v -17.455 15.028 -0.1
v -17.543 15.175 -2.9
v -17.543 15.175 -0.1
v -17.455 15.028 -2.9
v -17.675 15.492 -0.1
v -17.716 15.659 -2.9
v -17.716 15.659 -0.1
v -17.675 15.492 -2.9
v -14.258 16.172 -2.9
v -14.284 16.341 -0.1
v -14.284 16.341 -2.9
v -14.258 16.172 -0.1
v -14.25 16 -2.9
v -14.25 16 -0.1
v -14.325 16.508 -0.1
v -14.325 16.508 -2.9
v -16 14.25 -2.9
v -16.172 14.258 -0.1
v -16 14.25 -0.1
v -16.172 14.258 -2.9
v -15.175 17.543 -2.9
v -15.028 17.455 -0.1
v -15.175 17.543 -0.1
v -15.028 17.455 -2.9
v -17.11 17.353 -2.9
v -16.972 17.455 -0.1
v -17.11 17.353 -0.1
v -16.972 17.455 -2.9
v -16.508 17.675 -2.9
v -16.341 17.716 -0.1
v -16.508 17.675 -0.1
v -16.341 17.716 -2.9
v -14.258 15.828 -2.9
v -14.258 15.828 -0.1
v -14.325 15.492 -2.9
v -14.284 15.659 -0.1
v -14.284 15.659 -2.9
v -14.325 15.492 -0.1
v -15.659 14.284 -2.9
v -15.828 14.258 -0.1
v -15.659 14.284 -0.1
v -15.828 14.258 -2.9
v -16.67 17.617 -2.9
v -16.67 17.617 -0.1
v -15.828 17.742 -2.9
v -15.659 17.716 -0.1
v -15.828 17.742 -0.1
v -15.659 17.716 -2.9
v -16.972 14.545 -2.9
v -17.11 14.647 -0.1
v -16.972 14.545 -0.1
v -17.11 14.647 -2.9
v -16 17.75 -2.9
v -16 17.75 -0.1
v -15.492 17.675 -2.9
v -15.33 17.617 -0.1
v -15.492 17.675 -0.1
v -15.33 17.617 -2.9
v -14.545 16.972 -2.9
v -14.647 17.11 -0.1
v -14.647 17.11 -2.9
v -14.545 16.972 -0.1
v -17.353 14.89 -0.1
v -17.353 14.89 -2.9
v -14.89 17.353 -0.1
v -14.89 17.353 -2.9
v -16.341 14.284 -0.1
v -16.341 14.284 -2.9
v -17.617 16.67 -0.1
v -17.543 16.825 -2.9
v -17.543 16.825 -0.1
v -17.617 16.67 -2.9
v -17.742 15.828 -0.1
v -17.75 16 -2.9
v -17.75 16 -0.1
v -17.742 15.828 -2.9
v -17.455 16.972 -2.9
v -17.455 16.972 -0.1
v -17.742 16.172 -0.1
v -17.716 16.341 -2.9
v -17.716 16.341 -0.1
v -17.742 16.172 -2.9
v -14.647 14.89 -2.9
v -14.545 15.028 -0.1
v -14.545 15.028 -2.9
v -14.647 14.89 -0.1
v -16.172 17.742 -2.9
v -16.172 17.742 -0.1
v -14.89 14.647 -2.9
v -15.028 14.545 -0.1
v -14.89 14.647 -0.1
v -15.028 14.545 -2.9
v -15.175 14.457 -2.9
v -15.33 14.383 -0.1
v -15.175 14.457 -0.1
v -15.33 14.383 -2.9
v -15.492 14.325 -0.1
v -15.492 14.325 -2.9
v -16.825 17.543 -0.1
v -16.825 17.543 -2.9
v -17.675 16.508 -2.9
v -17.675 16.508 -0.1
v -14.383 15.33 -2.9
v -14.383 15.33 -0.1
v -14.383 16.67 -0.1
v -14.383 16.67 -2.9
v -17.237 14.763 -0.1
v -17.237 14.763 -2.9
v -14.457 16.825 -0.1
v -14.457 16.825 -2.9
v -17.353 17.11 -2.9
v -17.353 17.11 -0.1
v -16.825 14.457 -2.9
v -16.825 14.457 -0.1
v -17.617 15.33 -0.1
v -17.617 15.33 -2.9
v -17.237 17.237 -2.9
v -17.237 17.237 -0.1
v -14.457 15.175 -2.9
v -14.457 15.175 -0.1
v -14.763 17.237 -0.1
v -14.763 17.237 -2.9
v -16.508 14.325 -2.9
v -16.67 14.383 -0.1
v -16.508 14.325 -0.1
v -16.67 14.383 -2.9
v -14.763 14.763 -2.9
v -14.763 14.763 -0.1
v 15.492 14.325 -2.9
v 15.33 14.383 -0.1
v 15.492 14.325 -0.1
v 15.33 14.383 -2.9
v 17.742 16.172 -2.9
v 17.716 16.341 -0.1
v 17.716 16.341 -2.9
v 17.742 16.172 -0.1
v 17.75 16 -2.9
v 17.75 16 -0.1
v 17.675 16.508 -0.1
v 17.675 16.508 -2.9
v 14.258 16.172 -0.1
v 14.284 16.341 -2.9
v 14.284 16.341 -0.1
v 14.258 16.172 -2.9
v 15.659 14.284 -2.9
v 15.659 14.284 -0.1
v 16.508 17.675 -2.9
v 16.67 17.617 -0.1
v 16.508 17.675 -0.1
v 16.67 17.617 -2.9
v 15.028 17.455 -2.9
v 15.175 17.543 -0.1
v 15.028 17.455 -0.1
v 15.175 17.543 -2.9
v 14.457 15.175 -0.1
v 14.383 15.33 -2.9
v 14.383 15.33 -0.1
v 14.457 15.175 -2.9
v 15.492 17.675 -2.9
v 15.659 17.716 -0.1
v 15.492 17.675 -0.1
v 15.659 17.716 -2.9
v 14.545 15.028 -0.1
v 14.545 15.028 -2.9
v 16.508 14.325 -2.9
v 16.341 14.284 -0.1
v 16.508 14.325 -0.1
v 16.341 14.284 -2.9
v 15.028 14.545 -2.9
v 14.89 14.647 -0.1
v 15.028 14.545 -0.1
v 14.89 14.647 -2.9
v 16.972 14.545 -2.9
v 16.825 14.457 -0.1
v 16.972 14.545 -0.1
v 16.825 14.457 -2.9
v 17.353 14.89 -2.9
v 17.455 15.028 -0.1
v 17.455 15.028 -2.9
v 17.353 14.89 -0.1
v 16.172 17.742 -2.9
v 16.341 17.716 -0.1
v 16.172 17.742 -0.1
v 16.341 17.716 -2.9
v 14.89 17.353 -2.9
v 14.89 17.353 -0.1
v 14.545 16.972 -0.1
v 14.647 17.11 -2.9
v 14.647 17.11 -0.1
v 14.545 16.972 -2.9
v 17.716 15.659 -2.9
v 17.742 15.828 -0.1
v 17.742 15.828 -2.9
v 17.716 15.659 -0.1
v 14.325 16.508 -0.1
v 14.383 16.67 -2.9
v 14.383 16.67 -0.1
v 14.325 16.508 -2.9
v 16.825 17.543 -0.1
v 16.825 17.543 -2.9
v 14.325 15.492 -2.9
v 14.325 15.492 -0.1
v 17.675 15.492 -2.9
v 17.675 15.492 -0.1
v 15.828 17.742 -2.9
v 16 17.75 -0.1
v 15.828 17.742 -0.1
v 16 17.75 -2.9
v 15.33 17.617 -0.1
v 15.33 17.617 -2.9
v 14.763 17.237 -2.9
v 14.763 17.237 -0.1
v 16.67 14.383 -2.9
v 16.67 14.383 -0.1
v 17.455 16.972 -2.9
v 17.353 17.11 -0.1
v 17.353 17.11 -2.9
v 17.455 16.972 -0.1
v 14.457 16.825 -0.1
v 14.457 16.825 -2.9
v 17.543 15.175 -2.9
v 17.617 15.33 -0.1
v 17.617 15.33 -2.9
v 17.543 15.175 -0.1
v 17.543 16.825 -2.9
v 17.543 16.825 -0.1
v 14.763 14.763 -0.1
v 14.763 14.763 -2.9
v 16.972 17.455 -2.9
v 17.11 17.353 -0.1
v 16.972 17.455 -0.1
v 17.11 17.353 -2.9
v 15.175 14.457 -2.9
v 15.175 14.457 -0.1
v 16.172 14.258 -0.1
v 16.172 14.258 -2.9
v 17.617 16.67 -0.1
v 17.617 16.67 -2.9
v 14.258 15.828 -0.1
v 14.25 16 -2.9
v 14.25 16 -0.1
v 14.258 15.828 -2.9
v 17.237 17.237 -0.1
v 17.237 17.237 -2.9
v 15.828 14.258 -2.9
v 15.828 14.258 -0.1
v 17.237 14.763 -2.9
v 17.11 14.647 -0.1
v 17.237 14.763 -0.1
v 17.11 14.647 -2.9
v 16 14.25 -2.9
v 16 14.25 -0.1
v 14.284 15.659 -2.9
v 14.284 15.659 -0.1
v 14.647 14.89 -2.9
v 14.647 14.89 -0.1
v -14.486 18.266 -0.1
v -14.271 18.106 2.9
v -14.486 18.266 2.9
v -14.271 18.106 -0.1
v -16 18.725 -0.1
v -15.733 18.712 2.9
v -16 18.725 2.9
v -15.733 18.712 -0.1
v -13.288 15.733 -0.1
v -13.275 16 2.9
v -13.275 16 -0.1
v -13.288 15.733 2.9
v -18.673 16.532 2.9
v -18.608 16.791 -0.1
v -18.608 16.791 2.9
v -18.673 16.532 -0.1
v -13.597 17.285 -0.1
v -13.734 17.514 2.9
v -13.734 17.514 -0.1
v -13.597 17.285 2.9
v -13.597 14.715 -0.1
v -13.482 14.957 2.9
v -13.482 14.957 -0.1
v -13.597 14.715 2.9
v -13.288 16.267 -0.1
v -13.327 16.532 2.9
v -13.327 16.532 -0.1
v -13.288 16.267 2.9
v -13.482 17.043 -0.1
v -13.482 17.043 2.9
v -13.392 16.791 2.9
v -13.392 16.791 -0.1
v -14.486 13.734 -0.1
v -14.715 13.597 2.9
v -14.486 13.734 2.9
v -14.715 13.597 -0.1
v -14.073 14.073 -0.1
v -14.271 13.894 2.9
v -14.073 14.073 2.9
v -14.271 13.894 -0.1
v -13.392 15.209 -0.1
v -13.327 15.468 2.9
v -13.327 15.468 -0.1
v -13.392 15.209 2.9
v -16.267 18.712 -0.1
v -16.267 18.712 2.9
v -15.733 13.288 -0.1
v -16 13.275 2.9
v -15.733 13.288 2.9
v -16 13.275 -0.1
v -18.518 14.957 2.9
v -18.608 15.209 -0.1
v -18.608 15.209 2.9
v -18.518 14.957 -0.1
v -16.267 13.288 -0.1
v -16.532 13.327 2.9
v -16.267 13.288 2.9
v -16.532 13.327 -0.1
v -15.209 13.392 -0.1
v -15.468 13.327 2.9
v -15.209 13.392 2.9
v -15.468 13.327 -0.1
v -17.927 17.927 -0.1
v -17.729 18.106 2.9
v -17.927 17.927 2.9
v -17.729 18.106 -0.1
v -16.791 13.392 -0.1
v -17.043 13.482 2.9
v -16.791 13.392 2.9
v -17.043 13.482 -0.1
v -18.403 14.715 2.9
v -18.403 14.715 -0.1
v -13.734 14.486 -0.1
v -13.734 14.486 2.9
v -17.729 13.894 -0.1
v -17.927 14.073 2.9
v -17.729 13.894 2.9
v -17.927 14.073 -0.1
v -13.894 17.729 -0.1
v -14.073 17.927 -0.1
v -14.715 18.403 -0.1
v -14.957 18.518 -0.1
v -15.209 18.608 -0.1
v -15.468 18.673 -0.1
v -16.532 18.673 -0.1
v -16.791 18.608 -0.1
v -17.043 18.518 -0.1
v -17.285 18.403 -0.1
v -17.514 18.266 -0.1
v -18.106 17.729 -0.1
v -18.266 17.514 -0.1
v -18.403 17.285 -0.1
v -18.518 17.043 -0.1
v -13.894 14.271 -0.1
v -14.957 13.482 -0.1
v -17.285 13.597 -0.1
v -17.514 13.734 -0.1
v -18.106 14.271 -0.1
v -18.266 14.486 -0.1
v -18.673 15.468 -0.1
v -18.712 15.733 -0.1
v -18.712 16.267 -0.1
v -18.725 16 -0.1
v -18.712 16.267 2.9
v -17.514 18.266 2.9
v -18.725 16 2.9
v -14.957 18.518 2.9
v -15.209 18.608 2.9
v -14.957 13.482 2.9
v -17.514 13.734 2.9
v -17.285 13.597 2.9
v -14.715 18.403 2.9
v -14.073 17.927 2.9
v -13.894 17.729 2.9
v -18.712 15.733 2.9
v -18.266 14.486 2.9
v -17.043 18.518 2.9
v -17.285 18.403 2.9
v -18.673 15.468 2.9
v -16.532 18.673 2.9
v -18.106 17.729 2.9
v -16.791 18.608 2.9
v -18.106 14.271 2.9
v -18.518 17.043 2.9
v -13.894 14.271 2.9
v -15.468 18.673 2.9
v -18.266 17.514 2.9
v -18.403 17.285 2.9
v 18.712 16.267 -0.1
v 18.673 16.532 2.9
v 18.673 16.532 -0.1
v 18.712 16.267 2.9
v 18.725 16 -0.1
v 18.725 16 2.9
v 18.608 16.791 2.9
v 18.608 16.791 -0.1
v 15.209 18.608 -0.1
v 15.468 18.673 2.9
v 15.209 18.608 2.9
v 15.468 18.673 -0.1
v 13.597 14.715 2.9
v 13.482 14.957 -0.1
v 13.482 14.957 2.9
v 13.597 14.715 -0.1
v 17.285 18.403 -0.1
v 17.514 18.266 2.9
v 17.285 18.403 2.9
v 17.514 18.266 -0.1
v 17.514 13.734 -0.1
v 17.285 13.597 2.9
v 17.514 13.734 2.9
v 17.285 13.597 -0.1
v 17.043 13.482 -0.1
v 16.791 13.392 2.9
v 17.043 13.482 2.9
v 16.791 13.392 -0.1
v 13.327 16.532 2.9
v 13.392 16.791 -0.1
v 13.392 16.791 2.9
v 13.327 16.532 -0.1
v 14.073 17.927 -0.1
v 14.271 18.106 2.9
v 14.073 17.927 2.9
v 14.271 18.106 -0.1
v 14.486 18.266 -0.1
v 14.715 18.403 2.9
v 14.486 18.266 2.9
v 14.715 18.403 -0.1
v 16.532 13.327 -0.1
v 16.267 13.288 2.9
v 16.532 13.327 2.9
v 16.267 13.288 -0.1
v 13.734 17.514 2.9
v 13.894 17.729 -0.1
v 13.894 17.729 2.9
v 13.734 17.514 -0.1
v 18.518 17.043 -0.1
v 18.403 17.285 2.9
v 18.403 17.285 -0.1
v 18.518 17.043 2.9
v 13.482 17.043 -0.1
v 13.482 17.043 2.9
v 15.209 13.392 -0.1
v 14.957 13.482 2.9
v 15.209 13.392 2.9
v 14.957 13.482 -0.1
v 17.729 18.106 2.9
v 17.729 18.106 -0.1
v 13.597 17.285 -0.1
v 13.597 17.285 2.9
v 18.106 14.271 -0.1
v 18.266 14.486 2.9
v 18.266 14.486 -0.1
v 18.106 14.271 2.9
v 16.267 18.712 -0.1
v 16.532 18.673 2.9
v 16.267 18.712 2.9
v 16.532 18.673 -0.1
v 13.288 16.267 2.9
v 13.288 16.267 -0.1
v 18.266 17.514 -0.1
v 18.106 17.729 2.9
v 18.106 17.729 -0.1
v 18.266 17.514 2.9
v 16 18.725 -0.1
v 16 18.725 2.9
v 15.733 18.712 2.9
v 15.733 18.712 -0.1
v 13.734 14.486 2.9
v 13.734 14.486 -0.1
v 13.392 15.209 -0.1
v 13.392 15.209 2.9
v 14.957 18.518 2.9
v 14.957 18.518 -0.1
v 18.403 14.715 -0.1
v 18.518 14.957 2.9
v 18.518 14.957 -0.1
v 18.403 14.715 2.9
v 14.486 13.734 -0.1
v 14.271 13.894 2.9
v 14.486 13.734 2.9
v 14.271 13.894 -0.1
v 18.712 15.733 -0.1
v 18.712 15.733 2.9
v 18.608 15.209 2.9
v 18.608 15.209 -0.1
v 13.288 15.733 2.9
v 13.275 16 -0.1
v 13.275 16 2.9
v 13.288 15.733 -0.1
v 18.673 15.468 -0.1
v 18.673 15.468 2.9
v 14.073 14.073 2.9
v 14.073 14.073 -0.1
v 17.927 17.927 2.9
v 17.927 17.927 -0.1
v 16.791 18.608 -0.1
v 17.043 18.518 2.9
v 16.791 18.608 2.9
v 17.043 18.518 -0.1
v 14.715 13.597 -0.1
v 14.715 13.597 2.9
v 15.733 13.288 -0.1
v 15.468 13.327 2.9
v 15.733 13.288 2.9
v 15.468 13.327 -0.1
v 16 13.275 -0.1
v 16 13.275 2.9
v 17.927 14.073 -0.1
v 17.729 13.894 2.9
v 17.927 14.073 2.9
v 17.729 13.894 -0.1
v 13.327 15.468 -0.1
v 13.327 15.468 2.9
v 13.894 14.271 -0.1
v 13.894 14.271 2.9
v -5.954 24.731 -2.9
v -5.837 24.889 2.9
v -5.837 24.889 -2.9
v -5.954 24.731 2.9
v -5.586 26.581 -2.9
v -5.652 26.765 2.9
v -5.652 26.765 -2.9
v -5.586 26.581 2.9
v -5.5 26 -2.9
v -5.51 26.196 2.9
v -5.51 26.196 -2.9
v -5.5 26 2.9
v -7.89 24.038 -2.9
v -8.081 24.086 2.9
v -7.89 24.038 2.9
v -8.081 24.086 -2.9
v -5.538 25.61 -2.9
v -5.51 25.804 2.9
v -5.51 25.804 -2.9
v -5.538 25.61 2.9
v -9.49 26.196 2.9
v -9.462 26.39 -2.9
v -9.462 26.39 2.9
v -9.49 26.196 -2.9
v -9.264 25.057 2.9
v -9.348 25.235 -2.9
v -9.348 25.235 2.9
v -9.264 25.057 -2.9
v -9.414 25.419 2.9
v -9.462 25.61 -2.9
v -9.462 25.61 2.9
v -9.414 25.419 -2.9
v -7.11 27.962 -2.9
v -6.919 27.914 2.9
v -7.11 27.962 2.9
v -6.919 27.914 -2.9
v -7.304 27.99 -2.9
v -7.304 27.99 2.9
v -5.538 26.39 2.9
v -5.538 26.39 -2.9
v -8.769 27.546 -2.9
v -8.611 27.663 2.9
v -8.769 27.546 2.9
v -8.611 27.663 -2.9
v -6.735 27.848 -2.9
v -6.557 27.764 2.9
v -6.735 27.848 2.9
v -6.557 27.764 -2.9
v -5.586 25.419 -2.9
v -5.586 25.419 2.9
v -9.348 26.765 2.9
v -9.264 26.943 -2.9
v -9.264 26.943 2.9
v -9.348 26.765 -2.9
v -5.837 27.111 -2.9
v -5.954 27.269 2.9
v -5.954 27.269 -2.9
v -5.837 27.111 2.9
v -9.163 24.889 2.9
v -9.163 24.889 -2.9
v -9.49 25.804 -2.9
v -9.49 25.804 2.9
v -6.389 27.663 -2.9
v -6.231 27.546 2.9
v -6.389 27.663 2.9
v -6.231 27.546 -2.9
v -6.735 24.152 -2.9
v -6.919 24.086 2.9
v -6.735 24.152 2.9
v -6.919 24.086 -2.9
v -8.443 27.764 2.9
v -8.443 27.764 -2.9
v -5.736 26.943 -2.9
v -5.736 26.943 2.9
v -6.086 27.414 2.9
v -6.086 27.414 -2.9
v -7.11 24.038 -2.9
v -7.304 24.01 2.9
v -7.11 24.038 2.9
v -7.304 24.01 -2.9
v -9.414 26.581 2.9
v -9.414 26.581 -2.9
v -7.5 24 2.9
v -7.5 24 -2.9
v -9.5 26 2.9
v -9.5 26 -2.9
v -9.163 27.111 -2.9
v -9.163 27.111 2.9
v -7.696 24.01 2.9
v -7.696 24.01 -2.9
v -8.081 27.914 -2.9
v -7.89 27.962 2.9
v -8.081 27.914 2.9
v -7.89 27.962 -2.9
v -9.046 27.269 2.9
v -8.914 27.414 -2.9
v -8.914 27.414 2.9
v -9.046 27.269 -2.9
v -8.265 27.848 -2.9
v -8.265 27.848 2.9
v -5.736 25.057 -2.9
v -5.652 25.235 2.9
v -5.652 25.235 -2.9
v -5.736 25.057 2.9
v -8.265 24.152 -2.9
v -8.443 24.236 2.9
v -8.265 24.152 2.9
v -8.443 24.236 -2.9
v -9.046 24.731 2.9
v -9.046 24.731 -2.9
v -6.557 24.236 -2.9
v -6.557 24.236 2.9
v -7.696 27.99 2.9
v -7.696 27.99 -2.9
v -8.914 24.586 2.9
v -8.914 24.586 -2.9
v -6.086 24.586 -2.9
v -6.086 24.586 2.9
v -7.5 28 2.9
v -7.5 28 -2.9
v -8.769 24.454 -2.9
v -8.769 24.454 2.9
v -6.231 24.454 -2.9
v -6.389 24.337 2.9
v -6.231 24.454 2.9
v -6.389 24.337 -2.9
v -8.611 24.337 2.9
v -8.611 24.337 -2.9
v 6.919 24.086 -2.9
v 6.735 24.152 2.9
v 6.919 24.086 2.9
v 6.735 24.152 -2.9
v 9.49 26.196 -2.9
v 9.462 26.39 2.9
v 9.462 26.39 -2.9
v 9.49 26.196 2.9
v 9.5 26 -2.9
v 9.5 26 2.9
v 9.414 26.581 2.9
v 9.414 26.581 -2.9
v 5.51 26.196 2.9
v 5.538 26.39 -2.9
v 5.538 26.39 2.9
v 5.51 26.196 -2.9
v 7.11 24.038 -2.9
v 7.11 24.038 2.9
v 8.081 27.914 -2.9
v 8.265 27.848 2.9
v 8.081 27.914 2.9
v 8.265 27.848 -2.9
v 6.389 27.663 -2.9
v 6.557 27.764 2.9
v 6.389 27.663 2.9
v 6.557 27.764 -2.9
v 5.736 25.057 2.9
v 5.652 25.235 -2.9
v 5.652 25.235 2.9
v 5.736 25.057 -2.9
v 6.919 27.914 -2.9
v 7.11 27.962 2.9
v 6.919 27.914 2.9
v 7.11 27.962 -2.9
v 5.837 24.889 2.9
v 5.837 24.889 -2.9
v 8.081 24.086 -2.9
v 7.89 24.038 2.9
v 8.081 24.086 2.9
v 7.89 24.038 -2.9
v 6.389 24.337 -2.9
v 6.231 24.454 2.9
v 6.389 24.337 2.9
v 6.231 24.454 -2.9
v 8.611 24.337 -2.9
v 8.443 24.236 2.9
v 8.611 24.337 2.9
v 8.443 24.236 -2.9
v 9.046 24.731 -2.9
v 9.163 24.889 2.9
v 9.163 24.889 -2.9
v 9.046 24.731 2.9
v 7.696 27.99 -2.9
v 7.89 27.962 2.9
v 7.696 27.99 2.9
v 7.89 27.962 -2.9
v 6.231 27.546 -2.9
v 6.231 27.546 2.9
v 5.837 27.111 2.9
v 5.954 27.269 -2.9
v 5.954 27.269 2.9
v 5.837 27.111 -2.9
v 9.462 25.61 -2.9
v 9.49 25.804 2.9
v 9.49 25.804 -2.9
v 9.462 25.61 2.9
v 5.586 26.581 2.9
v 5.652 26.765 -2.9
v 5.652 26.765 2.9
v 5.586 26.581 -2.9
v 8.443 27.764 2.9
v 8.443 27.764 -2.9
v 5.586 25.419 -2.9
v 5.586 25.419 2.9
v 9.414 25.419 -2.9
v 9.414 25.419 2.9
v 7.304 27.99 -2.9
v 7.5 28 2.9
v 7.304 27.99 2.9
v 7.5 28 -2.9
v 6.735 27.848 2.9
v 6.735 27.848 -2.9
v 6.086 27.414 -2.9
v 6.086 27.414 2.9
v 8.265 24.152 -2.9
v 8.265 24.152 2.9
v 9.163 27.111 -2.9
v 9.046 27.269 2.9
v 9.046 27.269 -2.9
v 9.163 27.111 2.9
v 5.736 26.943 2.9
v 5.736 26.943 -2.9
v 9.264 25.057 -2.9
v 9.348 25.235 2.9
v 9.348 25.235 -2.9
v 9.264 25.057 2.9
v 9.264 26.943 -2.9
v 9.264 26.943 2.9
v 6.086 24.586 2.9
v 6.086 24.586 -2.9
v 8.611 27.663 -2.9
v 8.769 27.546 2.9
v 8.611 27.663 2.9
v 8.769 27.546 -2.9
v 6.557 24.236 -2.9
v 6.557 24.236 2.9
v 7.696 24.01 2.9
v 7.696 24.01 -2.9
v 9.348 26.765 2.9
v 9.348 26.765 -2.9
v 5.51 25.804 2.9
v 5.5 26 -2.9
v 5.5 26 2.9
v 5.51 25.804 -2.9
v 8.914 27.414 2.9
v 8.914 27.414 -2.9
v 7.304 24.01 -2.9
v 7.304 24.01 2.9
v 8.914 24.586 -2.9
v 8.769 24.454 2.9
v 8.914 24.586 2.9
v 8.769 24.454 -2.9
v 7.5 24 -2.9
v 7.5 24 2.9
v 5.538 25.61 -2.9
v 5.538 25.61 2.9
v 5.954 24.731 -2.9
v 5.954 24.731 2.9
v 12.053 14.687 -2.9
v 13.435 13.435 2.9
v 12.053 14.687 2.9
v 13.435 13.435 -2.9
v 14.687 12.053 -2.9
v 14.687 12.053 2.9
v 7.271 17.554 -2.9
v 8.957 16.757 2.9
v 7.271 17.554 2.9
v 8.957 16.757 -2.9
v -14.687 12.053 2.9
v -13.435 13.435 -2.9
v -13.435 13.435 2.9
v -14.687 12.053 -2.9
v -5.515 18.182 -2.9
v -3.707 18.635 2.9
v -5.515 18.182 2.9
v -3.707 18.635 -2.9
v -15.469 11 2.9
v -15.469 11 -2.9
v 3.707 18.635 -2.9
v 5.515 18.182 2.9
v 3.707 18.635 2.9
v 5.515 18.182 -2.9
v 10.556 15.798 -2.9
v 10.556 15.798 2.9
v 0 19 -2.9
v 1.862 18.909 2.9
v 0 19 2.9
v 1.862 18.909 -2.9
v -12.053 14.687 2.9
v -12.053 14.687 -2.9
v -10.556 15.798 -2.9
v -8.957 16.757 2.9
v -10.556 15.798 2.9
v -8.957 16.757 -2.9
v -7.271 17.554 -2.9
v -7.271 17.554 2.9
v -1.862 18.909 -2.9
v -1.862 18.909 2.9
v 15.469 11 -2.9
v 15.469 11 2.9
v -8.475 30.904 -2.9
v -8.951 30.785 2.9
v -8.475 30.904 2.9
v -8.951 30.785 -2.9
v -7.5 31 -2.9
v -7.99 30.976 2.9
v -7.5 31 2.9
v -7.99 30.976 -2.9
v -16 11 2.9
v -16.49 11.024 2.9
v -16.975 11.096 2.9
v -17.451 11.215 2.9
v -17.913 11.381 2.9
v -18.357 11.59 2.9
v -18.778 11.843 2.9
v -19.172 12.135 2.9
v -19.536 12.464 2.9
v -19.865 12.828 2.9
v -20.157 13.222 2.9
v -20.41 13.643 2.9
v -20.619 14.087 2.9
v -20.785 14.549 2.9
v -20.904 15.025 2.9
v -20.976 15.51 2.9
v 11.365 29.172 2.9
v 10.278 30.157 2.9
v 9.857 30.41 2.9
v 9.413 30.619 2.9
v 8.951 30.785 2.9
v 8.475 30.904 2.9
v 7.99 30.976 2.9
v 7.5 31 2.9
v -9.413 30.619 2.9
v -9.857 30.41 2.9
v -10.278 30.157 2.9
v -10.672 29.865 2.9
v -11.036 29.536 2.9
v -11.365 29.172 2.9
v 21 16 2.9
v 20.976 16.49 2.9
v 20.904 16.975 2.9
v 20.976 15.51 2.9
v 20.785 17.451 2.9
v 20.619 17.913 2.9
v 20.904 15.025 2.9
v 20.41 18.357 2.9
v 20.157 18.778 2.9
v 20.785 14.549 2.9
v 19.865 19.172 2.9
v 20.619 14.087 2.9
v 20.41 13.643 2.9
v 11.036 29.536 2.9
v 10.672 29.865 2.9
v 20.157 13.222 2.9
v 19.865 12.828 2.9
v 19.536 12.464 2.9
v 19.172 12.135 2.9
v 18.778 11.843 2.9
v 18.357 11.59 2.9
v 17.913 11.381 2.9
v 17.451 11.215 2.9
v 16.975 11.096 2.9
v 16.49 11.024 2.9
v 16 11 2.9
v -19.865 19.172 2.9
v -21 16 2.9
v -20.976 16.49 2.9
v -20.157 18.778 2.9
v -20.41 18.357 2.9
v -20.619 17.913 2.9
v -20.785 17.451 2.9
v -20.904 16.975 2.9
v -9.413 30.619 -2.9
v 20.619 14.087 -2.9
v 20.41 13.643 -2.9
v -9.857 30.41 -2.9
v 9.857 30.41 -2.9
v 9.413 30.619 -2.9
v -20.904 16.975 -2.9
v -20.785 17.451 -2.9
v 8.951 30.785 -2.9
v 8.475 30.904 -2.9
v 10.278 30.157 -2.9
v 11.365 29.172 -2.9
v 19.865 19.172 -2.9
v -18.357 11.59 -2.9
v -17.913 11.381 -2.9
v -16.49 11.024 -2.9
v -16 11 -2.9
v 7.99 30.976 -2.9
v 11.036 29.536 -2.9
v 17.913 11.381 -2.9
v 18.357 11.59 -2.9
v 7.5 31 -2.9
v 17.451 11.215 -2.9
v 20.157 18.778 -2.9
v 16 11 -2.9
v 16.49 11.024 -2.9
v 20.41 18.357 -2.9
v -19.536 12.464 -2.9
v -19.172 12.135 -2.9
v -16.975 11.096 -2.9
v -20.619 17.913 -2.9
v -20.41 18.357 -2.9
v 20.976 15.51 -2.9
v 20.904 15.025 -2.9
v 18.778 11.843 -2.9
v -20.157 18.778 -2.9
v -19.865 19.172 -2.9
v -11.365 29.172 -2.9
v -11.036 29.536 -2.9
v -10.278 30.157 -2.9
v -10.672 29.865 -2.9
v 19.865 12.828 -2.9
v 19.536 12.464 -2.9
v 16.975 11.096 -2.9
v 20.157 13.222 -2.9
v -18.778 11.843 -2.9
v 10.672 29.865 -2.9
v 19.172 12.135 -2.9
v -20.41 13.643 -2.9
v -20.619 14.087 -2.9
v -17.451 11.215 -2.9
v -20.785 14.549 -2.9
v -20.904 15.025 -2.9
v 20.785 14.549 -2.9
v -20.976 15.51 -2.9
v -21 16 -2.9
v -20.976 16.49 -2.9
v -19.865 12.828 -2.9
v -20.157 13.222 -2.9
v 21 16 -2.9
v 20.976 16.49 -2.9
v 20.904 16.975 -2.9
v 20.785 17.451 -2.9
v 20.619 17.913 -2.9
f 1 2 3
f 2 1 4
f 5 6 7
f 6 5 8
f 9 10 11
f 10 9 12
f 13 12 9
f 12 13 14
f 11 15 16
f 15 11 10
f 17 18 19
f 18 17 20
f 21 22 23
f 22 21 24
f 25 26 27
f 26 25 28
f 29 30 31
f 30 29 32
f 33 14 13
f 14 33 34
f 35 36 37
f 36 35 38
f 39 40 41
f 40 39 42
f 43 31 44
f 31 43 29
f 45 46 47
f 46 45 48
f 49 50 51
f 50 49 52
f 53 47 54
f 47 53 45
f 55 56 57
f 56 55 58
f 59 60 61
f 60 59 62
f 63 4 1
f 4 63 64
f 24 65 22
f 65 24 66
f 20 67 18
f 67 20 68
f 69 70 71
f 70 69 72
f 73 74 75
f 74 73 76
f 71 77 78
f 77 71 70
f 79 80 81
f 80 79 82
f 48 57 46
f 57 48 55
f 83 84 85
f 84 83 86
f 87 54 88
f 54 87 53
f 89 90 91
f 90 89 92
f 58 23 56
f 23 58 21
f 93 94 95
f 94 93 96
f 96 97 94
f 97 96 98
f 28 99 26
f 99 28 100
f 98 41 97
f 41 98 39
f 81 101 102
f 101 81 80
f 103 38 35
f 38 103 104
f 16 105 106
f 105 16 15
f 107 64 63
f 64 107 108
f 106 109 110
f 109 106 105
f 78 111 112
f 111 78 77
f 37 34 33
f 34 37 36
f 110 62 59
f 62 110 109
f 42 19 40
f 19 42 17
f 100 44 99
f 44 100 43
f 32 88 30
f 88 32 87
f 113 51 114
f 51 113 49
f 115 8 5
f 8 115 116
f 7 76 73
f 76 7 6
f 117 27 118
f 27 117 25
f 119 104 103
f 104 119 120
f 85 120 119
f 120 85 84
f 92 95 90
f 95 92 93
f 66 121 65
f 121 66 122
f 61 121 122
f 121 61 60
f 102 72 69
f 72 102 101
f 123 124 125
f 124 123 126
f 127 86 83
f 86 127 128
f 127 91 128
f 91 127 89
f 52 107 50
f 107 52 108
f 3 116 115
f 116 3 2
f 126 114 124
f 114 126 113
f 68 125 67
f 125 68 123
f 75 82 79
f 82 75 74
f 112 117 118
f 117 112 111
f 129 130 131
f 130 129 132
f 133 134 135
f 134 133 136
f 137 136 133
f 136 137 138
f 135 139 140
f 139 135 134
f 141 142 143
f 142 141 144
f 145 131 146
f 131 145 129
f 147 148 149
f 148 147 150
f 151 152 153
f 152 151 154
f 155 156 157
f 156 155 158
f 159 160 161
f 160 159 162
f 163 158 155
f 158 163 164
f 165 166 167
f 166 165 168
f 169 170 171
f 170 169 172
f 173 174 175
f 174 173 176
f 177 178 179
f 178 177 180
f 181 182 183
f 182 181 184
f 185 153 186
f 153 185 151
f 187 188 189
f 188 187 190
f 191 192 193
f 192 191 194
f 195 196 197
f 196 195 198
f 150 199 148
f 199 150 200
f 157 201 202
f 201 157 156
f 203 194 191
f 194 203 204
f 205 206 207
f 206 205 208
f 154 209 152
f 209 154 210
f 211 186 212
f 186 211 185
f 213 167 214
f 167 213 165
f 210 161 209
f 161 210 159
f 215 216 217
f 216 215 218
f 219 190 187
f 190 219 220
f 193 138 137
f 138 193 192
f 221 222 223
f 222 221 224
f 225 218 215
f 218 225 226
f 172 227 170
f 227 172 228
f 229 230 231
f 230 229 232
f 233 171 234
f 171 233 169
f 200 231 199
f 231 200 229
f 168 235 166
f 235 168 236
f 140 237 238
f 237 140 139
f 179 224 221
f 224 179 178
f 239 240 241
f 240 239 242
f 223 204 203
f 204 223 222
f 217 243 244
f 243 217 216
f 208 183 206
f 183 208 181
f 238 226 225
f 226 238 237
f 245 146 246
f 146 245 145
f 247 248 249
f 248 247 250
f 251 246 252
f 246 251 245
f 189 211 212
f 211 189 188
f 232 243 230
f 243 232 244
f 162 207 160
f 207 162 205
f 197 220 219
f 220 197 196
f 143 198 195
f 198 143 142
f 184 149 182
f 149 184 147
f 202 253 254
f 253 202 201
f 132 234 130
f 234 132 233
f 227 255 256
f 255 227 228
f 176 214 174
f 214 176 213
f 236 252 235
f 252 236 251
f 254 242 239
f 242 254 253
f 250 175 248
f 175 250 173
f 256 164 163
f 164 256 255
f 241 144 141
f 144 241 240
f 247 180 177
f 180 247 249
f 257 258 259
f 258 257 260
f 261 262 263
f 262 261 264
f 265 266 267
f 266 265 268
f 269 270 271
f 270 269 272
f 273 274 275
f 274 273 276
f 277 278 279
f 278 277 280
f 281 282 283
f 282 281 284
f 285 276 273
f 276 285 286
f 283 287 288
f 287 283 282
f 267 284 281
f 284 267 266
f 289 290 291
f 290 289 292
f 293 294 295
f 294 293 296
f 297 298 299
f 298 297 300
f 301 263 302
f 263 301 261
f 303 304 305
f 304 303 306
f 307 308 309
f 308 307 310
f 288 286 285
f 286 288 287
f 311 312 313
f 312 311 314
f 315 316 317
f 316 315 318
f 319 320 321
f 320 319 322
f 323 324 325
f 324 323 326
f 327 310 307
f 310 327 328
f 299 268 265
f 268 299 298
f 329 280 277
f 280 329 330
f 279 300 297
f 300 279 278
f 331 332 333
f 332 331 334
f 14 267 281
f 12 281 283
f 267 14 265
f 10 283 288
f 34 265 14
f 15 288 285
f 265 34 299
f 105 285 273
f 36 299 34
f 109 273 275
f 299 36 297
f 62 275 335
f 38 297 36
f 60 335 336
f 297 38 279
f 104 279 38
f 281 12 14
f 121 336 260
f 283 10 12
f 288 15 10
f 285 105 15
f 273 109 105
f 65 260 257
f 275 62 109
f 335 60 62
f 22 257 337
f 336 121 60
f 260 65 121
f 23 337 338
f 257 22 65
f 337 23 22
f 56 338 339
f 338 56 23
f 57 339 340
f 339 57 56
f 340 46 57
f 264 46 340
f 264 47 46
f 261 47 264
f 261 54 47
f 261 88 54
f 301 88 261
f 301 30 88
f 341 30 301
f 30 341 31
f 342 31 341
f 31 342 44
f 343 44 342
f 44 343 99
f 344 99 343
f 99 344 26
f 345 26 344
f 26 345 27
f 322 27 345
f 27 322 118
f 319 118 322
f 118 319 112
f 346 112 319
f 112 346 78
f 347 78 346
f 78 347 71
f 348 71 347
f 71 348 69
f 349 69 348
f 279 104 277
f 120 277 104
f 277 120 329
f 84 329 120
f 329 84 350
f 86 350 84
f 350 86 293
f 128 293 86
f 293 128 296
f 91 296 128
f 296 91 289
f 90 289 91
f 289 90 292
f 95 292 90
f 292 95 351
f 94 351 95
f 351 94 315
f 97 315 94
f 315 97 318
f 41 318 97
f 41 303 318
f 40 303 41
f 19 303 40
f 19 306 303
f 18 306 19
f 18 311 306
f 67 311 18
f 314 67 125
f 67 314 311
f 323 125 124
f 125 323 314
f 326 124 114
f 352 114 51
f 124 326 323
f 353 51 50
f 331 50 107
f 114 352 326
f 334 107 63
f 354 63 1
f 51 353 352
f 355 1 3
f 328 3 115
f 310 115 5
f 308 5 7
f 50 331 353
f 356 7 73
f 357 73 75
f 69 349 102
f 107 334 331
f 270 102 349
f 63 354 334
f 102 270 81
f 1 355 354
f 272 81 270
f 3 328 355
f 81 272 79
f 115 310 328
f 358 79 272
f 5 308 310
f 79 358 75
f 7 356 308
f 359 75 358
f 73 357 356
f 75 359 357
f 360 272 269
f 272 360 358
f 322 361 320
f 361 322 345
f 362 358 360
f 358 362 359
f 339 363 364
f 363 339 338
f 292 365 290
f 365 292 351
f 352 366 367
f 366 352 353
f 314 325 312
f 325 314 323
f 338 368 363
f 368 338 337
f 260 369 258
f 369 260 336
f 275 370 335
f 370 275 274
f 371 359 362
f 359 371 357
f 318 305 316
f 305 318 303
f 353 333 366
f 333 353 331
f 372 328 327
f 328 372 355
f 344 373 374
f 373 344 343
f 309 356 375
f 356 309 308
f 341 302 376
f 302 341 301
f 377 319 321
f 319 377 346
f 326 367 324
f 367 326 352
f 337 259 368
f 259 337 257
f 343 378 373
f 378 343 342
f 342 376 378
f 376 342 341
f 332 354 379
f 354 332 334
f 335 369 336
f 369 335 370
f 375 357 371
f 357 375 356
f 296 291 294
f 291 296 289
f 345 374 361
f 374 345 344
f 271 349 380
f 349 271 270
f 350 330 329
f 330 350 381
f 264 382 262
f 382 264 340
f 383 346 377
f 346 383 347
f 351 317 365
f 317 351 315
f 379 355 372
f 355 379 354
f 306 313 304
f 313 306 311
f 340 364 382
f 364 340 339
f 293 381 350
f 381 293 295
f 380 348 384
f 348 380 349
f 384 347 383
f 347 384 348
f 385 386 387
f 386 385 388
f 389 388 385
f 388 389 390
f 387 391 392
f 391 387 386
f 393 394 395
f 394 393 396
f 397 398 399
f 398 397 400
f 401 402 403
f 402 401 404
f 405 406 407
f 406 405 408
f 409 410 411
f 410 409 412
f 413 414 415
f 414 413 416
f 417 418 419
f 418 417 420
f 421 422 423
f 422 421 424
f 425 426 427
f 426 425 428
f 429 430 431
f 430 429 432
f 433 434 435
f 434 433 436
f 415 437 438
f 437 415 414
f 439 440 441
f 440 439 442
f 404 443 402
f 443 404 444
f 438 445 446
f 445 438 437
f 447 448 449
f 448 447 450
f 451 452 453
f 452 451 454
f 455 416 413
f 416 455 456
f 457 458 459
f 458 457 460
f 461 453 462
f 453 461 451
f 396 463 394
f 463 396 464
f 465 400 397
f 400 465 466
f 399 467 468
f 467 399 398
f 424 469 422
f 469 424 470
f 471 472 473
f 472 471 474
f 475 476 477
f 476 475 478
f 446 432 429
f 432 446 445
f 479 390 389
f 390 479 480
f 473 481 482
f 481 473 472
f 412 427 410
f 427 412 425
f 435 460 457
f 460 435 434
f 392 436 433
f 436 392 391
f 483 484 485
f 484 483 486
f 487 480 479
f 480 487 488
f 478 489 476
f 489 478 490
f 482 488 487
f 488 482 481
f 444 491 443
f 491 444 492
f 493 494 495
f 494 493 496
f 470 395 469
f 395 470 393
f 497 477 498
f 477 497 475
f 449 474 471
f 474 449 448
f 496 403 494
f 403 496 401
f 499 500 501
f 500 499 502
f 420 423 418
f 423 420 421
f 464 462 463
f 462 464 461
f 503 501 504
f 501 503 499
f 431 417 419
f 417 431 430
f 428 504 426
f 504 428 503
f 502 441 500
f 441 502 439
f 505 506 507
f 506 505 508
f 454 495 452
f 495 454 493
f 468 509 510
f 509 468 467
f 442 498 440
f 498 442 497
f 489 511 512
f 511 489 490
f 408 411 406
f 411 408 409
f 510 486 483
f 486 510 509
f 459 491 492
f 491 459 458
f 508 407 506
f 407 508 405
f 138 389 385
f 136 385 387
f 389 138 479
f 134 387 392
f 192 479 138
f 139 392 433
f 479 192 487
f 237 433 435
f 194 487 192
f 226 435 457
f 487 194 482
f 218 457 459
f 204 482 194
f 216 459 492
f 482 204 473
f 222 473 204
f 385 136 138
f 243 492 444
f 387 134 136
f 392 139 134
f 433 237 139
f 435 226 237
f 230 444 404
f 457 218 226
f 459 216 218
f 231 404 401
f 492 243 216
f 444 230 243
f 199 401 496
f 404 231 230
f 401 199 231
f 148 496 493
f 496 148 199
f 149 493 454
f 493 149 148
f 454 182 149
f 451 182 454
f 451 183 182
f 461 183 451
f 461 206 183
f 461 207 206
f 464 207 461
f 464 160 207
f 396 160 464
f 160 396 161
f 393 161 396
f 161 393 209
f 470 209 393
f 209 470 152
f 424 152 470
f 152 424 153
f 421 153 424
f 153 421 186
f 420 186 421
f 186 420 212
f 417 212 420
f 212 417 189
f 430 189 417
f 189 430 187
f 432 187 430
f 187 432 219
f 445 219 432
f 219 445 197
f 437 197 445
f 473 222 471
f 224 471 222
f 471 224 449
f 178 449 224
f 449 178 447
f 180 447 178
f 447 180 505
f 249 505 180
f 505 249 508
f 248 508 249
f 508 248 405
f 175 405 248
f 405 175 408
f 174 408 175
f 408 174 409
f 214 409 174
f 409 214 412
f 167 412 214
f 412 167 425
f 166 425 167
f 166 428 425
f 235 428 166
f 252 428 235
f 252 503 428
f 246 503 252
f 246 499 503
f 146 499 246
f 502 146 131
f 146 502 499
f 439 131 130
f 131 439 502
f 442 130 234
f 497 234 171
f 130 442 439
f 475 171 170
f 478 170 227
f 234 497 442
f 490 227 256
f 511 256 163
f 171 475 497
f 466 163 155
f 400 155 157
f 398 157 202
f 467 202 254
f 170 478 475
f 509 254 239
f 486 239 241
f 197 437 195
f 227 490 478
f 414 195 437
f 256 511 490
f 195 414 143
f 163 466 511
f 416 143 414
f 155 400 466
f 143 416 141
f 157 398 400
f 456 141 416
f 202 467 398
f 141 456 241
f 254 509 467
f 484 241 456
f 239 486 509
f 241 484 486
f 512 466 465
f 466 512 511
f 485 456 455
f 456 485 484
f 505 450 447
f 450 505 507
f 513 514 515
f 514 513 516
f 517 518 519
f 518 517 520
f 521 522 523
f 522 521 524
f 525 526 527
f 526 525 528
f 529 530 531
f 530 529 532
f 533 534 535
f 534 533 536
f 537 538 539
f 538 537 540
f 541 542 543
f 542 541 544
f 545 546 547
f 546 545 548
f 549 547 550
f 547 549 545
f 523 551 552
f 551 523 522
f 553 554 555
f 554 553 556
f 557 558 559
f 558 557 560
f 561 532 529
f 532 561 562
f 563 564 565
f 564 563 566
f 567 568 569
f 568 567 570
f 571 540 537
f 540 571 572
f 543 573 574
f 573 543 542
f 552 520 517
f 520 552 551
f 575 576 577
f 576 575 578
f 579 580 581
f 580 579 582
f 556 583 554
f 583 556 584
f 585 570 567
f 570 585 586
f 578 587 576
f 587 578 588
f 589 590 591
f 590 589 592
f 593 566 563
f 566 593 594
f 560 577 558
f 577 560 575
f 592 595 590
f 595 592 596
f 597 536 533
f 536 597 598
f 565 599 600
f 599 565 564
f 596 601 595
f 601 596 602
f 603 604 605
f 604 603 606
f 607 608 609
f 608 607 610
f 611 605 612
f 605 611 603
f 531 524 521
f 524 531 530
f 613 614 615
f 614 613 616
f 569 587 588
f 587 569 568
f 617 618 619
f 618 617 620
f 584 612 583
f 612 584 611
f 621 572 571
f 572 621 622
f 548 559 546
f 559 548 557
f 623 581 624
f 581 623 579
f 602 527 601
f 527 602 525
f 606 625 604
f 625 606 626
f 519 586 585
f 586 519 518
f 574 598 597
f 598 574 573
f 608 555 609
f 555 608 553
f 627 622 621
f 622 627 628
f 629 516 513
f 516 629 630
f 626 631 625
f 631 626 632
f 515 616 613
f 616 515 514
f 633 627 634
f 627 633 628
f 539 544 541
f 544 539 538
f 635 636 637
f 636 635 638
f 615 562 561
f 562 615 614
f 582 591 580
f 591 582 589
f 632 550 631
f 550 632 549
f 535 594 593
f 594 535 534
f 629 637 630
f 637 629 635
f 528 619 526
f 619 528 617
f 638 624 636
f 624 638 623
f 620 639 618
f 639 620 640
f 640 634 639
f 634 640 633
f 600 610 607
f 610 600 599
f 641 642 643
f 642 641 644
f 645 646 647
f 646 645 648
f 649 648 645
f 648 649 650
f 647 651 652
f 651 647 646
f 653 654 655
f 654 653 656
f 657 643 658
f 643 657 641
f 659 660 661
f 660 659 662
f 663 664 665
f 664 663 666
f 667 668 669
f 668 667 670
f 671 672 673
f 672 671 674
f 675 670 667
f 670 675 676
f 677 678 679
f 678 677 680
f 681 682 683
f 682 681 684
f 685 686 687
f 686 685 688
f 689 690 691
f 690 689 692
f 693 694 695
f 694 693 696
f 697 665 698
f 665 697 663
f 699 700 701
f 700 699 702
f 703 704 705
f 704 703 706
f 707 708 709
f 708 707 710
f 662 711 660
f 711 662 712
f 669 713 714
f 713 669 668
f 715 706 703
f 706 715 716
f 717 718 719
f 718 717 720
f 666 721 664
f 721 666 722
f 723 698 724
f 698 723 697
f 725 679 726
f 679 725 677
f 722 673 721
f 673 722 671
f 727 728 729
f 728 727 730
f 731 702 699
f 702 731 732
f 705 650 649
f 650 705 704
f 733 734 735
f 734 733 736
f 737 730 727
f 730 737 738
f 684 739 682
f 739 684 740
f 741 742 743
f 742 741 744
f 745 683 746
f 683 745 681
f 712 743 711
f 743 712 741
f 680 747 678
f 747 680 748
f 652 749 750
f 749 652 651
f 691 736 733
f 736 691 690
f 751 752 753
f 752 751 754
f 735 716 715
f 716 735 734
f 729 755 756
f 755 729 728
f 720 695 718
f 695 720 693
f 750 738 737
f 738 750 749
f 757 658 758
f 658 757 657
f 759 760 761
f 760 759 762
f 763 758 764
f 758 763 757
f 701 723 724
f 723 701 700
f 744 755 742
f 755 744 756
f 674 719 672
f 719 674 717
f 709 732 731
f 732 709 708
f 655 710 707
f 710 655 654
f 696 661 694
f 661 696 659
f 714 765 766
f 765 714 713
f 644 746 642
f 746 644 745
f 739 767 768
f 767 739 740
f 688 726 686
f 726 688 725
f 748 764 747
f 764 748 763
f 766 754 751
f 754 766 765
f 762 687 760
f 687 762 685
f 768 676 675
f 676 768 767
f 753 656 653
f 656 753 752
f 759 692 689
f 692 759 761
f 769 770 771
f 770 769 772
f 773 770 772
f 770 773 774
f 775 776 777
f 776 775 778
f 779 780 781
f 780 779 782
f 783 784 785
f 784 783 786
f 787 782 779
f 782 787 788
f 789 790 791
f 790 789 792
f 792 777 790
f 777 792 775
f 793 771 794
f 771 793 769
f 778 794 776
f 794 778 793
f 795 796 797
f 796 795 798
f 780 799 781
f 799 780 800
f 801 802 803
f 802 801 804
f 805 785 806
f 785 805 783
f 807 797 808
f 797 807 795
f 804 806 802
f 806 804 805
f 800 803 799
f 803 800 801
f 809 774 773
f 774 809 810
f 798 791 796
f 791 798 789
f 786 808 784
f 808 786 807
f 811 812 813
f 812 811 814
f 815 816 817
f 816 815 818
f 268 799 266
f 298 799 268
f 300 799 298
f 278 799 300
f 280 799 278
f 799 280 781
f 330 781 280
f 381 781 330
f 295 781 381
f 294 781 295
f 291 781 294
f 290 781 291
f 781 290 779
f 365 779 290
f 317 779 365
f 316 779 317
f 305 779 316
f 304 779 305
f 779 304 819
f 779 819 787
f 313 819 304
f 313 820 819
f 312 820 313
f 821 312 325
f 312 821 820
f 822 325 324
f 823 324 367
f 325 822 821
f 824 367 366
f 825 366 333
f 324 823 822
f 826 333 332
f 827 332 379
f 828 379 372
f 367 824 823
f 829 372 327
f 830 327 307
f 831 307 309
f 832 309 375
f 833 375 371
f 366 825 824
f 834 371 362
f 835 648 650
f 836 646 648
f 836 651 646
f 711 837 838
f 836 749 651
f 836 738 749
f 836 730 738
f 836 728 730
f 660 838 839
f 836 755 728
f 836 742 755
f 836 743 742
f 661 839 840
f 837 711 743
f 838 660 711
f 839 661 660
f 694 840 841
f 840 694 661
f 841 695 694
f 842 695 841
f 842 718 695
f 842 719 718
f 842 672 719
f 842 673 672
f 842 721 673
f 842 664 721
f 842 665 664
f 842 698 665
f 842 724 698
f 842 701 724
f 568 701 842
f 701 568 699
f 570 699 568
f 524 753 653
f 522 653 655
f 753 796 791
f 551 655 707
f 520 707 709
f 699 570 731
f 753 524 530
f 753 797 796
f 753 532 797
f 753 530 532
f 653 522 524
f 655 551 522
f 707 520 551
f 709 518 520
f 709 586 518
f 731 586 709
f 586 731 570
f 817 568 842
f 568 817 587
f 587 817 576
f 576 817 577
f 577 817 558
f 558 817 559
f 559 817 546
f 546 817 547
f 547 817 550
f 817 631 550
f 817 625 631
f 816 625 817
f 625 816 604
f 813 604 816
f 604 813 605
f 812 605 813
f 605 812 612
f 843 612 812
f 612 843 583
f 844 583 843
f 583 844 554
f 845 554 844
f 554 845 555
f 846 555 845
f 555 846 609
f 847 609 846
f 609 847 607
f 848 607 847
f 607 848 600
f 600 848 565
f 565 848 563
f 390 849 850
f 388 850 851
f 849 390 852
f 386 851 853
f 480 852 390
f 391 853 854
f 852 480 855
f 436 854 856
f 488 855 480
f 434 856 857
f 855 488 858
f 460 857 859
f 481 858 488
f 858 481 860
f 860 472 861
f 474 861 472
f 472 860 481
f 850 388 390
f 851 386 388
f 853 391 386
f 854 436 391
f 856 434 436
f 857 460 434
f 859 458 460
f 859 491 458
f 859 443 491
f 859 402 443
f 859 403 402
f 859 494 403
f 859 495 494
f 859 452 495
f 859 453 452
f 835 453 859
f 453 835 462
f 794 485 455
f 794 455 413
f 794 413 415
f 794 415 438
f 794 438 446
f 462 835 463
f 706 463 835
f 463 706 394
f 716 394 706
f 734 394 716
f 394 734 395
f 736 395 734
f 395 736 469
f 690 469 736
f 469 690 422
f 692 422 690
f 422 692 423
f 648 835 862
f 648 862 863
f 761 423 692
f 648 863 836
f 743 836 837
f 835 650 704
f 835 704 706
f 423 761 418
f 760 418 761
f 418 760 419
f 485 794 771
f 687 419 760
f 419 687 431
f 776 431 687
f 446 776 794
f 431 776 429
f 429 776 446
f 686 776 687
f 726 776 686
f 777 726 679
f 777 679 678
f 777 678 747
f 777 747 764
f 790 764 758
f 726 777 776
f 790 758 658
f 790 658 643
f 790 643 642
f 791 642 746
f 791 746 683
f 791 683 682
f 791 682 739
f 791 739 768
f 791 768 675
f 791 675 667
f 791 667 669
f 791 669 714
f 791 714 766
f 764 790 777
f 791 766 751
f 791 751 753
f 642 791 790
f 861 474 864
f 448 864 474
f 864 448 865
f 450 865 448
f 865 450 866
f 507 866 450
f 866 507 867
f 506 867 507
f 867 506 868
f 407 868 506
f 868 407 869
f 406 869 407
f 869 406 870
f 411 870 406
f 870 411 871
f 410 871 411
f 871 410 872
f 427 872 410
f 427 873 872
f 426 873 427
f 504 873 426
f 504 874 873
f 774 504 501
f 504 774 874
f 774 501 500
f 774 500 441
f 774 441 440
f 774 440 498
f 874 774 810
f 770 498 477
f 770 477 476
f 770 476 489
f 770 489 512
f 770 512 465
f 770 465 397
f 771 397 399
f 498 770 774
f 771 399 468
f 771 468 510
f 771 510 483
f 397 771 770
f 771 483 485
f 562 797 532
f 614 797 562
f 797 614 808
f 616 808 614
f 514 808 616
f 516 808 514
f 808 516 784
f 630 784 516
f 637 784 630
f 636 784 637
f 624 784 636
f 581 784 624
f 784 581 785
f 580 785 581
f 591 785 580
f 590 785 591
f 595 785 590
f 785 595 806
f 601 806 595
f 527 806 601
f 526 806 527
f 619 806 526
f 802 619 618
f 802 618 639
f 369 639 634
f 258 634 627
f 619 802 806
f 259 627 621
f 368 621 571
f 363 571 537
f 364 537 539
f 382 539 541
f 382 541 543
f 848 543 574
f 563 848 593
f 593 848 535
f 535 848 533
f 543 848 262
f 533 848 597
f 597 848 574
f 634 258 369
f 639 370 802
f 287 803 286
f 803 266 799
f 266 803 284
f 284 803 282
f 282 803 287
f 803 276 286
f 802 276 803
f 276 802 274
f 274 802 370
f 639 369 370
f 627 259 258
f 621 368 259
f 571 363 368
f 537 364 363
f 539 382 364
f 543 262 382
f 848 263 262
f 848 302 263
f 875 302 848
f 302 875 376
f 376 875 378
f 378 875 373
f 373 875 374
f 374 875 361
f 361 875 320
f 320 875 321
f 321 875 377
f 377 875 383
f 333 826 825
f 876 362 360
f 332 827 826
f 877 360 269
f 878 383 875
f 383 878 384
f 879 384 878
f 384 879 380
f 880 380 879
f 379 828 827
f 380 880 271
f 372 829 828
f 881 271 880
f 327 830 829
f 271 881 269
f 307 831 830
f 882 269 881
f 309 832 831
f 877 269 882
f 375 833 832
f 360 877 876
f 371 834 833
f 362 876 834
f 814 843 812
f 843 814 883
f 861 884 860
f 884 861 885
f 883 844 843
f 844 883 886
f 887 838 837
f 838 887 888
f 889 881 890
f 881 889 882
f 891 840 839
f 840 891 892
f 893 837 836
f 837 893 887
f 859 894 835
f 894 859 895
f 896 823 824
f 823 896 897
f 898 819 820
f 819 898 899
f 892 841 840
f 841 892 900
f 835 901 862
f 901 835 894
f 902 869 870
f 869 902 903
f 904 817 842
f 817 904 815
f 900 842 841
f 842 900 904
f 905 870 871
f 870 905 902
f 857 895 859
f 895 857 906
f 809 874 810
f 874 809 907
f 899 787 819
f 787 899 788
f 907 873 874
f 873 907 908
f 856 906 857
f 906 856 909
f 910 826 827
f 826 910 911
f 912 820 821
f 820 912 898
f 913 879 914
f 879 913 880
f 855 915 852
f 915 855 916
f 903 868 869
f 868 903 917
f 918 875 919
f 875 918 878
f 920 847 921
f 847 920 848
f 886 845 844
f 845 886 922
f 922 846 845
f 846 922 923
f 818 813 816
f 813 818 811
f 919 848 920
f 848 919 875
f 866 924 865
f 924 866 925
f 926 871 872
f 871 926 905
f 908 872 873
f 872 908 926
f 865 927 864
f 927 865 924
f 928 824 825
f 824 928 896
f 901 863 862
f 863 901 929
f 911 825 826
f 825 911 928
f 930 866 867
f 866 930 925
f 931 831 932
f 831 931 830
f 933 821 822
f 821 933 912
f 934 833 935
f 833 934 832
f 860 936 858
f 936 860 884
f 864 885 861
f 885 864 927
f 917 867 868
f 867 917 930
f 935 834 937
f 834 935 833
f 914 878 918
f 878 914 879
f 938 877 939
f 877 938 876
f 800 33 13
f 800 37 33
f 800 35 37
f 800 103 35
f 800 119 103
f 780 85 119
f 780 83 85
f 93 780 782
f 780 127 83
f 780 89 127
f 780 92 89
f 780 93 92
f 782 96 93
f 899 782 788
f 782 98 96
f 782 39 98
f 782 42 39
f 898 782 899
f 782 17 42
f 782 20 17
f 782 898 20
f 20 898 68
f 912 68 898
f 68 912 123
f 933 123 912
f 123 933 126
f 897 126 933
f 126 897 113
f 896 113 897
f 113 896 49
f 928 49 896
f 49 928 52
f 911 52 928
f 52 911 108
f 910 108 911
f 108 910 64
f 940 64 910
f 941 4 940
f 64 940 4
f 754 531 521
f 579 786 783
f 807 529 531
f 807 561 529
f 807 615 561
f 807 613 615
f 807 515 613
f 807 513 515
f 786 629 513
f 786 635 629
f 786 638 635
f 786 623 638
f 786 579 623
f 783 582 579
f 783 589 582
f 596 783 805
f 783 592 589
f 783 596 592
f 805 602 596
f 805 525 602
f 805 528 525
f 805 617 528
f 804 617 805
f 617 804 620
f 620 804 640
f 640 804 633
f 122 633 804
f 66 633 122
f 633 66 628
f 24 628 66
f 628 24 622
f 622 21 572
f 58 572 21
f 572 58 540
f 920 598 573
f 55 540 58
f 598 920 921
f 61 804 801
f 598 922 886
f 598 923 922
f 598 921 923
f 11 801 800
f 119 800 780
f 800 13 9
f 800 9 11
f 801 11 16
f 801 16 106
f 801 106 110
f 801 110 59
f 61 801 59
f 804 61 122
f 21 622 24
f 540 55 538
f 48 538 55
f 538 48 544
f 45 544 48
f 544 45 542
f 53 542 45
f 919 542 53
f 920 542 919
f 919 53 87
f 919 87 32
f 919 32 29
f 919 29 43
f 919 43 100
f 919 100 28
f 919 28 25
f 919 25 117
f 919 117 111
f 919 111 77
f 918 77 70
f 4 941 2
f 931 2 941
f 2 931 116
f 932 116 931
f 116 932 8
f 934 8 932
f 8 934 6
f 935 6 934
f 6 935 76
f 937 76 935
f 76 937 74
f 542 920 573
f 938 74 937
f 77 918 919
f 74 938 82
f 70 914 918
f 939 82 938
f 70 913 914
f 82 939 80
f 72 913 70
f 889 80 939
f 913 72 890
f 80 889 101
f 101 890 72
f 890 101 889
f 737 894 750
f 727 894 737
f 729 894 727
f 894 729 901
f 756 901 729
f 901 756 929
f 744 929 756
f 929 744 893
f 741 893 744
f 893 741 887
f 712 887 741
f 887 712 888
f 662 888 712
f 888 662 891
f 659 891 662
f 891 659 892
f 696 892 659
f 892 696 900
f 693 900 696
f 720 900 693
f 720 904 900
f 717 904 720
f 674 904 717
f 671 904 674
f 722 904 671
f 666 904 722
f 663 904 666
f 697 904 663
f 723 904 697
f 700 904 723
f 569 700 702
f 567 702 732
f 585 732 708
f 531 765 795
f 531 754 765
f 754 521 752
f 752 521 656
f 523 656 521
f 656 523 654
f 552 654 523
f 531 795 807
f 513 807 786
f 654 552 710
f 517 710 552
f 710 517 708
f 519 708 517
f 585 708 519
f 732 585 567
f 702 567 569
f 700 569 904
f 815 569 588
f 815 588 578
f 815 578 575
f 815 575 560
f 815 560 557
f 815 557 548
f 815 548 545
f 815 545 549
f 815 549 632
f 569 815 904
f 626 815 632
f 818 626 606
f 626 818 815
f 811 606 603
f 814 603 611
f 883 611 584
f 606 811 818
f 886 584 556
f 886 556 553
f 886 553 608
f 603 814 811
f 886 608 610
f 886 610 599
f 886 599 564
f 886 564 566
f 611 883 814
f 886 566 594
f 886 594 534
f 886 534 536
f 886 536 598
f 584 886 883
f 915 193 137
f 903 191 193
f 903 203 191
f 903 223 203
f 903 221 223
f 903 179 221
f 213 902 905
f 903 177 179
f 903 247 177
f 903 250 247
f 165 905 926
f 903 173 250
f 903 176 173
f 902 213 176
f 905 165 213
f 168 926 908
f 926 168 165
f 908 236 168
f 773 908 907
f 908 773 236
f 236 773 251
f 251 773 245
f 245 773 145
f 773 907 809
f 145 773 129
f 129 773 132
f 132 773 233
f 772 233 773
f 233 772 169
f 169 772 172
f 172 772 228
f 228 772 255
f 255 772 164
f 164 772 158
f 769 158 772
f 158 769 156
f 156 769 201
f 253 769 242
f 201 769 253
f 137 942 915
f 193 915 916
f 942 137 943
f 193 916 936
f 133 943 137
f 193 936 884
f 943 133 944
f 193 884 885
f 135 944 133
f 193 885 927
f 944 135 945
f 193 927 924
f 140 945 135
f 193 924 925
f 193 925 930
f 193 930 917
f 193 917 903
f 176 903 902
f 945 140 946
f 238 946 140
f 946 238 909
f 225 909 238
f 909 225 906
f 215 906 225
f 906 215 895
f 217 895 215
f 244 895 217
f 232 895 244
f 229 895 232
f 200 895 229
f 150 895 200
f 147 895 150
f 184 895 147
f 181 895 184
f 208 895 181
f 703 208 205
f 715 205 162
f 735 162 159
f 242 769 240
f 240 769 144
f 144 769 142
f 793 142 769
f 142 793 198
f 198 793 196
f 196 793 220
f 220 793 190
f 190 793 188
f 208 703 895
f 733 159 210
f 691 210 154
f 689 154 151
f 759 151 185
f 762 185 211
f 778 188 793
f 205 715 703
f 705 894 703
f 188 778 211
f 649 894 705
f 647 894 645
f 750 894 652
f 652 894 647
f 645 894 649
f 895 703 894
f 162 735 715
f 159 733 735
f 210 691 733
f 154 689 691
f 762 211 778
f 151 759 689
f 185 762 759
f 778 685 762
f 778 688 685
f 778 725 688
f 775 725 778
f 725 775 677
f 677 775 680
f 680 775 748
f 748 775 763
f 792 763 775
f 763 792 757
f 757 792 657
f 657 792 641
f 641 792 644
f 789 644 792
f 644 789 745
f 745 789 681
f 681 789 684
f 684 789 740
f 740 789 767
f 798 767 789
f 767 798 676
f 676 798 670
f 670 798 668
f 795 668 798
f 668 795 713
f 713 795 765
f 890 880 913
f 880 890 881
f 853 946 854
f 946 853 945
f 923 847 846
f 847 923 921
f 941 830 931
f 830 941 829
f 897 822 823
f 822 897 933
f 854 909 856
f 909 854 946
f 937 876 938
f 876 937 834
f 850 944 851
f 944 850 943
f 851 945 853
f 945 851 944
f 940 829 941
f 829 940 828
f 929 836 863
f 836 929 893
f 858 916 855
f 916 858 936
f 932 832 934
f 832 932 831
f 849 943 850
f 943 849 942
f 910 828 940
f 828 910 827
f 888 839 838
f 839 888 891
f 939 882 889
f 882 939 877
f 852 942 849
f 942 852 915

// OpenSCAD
$fan_size = 40;
$screw_distance = 32;
$adxl_screw_distance = 15;
$part_height = 5.8;
$screw_head_height = 3;
$screw_head_diameter = 5.45;

$fn = 64;


module remove_parts() {
    
    $head_move = ($part_height - $screw_head_height);
    translate([-$screw_distance/2, $screw_distance/2, 0]) cylinder(h = $part_height * 2, d = 3.5, center = true);
    translate([$screw_distance/2, $screw_distance/2, 0]) cylinder(h = $part_height * 2, d = 3.5, center = true);
    
    translate([-$screw_distance/2, $screw_distance/2, $head_move]) cylinder(h = $part_height, d = $screw_head_diameter, center = true);
    translate([$screw_distance/2, $screw_distance/2, $head_move]) cylinder(h = $part_height, d = $screw_head_diameter, center = true);
    
    translate([-$adxl_screw_distance/2, $screw_distance/2 + 10, 0]) cylinder(h = $part_height * 2, d = 4, center = true);
    translate([$adxl_screw_distance/2, $screw_distance/2 + 10, 0]) cylinder(h = $part_height * 2, d = 4, center = true);

    
    cylinder(h = 20, d = $fan_size -2, center = true);
}

module add_parts() {
    hull() {
        translate([-$screw_distance/2, $screw_distance/2, 0]) cylinder(h = $part_height, d = 10, center = true);
        translate([$screw_distance/2, $screw_distance/2, 0]) cylinder(h = $part_height, d = 10, center = true);
    
        translate([-$adxl_screw_distance/2, $screw_distance/2 + 10, 0]) cylinder(h = $part_height, d = 10, center = true);
        translate([$adxl_screw_distance/2, $screw_distance/2 + 10, 0]) cylinder(h = $part_height, d = 10, center = true);
    }

}

difference() {
    add_parts();
    remove_parts();
}
